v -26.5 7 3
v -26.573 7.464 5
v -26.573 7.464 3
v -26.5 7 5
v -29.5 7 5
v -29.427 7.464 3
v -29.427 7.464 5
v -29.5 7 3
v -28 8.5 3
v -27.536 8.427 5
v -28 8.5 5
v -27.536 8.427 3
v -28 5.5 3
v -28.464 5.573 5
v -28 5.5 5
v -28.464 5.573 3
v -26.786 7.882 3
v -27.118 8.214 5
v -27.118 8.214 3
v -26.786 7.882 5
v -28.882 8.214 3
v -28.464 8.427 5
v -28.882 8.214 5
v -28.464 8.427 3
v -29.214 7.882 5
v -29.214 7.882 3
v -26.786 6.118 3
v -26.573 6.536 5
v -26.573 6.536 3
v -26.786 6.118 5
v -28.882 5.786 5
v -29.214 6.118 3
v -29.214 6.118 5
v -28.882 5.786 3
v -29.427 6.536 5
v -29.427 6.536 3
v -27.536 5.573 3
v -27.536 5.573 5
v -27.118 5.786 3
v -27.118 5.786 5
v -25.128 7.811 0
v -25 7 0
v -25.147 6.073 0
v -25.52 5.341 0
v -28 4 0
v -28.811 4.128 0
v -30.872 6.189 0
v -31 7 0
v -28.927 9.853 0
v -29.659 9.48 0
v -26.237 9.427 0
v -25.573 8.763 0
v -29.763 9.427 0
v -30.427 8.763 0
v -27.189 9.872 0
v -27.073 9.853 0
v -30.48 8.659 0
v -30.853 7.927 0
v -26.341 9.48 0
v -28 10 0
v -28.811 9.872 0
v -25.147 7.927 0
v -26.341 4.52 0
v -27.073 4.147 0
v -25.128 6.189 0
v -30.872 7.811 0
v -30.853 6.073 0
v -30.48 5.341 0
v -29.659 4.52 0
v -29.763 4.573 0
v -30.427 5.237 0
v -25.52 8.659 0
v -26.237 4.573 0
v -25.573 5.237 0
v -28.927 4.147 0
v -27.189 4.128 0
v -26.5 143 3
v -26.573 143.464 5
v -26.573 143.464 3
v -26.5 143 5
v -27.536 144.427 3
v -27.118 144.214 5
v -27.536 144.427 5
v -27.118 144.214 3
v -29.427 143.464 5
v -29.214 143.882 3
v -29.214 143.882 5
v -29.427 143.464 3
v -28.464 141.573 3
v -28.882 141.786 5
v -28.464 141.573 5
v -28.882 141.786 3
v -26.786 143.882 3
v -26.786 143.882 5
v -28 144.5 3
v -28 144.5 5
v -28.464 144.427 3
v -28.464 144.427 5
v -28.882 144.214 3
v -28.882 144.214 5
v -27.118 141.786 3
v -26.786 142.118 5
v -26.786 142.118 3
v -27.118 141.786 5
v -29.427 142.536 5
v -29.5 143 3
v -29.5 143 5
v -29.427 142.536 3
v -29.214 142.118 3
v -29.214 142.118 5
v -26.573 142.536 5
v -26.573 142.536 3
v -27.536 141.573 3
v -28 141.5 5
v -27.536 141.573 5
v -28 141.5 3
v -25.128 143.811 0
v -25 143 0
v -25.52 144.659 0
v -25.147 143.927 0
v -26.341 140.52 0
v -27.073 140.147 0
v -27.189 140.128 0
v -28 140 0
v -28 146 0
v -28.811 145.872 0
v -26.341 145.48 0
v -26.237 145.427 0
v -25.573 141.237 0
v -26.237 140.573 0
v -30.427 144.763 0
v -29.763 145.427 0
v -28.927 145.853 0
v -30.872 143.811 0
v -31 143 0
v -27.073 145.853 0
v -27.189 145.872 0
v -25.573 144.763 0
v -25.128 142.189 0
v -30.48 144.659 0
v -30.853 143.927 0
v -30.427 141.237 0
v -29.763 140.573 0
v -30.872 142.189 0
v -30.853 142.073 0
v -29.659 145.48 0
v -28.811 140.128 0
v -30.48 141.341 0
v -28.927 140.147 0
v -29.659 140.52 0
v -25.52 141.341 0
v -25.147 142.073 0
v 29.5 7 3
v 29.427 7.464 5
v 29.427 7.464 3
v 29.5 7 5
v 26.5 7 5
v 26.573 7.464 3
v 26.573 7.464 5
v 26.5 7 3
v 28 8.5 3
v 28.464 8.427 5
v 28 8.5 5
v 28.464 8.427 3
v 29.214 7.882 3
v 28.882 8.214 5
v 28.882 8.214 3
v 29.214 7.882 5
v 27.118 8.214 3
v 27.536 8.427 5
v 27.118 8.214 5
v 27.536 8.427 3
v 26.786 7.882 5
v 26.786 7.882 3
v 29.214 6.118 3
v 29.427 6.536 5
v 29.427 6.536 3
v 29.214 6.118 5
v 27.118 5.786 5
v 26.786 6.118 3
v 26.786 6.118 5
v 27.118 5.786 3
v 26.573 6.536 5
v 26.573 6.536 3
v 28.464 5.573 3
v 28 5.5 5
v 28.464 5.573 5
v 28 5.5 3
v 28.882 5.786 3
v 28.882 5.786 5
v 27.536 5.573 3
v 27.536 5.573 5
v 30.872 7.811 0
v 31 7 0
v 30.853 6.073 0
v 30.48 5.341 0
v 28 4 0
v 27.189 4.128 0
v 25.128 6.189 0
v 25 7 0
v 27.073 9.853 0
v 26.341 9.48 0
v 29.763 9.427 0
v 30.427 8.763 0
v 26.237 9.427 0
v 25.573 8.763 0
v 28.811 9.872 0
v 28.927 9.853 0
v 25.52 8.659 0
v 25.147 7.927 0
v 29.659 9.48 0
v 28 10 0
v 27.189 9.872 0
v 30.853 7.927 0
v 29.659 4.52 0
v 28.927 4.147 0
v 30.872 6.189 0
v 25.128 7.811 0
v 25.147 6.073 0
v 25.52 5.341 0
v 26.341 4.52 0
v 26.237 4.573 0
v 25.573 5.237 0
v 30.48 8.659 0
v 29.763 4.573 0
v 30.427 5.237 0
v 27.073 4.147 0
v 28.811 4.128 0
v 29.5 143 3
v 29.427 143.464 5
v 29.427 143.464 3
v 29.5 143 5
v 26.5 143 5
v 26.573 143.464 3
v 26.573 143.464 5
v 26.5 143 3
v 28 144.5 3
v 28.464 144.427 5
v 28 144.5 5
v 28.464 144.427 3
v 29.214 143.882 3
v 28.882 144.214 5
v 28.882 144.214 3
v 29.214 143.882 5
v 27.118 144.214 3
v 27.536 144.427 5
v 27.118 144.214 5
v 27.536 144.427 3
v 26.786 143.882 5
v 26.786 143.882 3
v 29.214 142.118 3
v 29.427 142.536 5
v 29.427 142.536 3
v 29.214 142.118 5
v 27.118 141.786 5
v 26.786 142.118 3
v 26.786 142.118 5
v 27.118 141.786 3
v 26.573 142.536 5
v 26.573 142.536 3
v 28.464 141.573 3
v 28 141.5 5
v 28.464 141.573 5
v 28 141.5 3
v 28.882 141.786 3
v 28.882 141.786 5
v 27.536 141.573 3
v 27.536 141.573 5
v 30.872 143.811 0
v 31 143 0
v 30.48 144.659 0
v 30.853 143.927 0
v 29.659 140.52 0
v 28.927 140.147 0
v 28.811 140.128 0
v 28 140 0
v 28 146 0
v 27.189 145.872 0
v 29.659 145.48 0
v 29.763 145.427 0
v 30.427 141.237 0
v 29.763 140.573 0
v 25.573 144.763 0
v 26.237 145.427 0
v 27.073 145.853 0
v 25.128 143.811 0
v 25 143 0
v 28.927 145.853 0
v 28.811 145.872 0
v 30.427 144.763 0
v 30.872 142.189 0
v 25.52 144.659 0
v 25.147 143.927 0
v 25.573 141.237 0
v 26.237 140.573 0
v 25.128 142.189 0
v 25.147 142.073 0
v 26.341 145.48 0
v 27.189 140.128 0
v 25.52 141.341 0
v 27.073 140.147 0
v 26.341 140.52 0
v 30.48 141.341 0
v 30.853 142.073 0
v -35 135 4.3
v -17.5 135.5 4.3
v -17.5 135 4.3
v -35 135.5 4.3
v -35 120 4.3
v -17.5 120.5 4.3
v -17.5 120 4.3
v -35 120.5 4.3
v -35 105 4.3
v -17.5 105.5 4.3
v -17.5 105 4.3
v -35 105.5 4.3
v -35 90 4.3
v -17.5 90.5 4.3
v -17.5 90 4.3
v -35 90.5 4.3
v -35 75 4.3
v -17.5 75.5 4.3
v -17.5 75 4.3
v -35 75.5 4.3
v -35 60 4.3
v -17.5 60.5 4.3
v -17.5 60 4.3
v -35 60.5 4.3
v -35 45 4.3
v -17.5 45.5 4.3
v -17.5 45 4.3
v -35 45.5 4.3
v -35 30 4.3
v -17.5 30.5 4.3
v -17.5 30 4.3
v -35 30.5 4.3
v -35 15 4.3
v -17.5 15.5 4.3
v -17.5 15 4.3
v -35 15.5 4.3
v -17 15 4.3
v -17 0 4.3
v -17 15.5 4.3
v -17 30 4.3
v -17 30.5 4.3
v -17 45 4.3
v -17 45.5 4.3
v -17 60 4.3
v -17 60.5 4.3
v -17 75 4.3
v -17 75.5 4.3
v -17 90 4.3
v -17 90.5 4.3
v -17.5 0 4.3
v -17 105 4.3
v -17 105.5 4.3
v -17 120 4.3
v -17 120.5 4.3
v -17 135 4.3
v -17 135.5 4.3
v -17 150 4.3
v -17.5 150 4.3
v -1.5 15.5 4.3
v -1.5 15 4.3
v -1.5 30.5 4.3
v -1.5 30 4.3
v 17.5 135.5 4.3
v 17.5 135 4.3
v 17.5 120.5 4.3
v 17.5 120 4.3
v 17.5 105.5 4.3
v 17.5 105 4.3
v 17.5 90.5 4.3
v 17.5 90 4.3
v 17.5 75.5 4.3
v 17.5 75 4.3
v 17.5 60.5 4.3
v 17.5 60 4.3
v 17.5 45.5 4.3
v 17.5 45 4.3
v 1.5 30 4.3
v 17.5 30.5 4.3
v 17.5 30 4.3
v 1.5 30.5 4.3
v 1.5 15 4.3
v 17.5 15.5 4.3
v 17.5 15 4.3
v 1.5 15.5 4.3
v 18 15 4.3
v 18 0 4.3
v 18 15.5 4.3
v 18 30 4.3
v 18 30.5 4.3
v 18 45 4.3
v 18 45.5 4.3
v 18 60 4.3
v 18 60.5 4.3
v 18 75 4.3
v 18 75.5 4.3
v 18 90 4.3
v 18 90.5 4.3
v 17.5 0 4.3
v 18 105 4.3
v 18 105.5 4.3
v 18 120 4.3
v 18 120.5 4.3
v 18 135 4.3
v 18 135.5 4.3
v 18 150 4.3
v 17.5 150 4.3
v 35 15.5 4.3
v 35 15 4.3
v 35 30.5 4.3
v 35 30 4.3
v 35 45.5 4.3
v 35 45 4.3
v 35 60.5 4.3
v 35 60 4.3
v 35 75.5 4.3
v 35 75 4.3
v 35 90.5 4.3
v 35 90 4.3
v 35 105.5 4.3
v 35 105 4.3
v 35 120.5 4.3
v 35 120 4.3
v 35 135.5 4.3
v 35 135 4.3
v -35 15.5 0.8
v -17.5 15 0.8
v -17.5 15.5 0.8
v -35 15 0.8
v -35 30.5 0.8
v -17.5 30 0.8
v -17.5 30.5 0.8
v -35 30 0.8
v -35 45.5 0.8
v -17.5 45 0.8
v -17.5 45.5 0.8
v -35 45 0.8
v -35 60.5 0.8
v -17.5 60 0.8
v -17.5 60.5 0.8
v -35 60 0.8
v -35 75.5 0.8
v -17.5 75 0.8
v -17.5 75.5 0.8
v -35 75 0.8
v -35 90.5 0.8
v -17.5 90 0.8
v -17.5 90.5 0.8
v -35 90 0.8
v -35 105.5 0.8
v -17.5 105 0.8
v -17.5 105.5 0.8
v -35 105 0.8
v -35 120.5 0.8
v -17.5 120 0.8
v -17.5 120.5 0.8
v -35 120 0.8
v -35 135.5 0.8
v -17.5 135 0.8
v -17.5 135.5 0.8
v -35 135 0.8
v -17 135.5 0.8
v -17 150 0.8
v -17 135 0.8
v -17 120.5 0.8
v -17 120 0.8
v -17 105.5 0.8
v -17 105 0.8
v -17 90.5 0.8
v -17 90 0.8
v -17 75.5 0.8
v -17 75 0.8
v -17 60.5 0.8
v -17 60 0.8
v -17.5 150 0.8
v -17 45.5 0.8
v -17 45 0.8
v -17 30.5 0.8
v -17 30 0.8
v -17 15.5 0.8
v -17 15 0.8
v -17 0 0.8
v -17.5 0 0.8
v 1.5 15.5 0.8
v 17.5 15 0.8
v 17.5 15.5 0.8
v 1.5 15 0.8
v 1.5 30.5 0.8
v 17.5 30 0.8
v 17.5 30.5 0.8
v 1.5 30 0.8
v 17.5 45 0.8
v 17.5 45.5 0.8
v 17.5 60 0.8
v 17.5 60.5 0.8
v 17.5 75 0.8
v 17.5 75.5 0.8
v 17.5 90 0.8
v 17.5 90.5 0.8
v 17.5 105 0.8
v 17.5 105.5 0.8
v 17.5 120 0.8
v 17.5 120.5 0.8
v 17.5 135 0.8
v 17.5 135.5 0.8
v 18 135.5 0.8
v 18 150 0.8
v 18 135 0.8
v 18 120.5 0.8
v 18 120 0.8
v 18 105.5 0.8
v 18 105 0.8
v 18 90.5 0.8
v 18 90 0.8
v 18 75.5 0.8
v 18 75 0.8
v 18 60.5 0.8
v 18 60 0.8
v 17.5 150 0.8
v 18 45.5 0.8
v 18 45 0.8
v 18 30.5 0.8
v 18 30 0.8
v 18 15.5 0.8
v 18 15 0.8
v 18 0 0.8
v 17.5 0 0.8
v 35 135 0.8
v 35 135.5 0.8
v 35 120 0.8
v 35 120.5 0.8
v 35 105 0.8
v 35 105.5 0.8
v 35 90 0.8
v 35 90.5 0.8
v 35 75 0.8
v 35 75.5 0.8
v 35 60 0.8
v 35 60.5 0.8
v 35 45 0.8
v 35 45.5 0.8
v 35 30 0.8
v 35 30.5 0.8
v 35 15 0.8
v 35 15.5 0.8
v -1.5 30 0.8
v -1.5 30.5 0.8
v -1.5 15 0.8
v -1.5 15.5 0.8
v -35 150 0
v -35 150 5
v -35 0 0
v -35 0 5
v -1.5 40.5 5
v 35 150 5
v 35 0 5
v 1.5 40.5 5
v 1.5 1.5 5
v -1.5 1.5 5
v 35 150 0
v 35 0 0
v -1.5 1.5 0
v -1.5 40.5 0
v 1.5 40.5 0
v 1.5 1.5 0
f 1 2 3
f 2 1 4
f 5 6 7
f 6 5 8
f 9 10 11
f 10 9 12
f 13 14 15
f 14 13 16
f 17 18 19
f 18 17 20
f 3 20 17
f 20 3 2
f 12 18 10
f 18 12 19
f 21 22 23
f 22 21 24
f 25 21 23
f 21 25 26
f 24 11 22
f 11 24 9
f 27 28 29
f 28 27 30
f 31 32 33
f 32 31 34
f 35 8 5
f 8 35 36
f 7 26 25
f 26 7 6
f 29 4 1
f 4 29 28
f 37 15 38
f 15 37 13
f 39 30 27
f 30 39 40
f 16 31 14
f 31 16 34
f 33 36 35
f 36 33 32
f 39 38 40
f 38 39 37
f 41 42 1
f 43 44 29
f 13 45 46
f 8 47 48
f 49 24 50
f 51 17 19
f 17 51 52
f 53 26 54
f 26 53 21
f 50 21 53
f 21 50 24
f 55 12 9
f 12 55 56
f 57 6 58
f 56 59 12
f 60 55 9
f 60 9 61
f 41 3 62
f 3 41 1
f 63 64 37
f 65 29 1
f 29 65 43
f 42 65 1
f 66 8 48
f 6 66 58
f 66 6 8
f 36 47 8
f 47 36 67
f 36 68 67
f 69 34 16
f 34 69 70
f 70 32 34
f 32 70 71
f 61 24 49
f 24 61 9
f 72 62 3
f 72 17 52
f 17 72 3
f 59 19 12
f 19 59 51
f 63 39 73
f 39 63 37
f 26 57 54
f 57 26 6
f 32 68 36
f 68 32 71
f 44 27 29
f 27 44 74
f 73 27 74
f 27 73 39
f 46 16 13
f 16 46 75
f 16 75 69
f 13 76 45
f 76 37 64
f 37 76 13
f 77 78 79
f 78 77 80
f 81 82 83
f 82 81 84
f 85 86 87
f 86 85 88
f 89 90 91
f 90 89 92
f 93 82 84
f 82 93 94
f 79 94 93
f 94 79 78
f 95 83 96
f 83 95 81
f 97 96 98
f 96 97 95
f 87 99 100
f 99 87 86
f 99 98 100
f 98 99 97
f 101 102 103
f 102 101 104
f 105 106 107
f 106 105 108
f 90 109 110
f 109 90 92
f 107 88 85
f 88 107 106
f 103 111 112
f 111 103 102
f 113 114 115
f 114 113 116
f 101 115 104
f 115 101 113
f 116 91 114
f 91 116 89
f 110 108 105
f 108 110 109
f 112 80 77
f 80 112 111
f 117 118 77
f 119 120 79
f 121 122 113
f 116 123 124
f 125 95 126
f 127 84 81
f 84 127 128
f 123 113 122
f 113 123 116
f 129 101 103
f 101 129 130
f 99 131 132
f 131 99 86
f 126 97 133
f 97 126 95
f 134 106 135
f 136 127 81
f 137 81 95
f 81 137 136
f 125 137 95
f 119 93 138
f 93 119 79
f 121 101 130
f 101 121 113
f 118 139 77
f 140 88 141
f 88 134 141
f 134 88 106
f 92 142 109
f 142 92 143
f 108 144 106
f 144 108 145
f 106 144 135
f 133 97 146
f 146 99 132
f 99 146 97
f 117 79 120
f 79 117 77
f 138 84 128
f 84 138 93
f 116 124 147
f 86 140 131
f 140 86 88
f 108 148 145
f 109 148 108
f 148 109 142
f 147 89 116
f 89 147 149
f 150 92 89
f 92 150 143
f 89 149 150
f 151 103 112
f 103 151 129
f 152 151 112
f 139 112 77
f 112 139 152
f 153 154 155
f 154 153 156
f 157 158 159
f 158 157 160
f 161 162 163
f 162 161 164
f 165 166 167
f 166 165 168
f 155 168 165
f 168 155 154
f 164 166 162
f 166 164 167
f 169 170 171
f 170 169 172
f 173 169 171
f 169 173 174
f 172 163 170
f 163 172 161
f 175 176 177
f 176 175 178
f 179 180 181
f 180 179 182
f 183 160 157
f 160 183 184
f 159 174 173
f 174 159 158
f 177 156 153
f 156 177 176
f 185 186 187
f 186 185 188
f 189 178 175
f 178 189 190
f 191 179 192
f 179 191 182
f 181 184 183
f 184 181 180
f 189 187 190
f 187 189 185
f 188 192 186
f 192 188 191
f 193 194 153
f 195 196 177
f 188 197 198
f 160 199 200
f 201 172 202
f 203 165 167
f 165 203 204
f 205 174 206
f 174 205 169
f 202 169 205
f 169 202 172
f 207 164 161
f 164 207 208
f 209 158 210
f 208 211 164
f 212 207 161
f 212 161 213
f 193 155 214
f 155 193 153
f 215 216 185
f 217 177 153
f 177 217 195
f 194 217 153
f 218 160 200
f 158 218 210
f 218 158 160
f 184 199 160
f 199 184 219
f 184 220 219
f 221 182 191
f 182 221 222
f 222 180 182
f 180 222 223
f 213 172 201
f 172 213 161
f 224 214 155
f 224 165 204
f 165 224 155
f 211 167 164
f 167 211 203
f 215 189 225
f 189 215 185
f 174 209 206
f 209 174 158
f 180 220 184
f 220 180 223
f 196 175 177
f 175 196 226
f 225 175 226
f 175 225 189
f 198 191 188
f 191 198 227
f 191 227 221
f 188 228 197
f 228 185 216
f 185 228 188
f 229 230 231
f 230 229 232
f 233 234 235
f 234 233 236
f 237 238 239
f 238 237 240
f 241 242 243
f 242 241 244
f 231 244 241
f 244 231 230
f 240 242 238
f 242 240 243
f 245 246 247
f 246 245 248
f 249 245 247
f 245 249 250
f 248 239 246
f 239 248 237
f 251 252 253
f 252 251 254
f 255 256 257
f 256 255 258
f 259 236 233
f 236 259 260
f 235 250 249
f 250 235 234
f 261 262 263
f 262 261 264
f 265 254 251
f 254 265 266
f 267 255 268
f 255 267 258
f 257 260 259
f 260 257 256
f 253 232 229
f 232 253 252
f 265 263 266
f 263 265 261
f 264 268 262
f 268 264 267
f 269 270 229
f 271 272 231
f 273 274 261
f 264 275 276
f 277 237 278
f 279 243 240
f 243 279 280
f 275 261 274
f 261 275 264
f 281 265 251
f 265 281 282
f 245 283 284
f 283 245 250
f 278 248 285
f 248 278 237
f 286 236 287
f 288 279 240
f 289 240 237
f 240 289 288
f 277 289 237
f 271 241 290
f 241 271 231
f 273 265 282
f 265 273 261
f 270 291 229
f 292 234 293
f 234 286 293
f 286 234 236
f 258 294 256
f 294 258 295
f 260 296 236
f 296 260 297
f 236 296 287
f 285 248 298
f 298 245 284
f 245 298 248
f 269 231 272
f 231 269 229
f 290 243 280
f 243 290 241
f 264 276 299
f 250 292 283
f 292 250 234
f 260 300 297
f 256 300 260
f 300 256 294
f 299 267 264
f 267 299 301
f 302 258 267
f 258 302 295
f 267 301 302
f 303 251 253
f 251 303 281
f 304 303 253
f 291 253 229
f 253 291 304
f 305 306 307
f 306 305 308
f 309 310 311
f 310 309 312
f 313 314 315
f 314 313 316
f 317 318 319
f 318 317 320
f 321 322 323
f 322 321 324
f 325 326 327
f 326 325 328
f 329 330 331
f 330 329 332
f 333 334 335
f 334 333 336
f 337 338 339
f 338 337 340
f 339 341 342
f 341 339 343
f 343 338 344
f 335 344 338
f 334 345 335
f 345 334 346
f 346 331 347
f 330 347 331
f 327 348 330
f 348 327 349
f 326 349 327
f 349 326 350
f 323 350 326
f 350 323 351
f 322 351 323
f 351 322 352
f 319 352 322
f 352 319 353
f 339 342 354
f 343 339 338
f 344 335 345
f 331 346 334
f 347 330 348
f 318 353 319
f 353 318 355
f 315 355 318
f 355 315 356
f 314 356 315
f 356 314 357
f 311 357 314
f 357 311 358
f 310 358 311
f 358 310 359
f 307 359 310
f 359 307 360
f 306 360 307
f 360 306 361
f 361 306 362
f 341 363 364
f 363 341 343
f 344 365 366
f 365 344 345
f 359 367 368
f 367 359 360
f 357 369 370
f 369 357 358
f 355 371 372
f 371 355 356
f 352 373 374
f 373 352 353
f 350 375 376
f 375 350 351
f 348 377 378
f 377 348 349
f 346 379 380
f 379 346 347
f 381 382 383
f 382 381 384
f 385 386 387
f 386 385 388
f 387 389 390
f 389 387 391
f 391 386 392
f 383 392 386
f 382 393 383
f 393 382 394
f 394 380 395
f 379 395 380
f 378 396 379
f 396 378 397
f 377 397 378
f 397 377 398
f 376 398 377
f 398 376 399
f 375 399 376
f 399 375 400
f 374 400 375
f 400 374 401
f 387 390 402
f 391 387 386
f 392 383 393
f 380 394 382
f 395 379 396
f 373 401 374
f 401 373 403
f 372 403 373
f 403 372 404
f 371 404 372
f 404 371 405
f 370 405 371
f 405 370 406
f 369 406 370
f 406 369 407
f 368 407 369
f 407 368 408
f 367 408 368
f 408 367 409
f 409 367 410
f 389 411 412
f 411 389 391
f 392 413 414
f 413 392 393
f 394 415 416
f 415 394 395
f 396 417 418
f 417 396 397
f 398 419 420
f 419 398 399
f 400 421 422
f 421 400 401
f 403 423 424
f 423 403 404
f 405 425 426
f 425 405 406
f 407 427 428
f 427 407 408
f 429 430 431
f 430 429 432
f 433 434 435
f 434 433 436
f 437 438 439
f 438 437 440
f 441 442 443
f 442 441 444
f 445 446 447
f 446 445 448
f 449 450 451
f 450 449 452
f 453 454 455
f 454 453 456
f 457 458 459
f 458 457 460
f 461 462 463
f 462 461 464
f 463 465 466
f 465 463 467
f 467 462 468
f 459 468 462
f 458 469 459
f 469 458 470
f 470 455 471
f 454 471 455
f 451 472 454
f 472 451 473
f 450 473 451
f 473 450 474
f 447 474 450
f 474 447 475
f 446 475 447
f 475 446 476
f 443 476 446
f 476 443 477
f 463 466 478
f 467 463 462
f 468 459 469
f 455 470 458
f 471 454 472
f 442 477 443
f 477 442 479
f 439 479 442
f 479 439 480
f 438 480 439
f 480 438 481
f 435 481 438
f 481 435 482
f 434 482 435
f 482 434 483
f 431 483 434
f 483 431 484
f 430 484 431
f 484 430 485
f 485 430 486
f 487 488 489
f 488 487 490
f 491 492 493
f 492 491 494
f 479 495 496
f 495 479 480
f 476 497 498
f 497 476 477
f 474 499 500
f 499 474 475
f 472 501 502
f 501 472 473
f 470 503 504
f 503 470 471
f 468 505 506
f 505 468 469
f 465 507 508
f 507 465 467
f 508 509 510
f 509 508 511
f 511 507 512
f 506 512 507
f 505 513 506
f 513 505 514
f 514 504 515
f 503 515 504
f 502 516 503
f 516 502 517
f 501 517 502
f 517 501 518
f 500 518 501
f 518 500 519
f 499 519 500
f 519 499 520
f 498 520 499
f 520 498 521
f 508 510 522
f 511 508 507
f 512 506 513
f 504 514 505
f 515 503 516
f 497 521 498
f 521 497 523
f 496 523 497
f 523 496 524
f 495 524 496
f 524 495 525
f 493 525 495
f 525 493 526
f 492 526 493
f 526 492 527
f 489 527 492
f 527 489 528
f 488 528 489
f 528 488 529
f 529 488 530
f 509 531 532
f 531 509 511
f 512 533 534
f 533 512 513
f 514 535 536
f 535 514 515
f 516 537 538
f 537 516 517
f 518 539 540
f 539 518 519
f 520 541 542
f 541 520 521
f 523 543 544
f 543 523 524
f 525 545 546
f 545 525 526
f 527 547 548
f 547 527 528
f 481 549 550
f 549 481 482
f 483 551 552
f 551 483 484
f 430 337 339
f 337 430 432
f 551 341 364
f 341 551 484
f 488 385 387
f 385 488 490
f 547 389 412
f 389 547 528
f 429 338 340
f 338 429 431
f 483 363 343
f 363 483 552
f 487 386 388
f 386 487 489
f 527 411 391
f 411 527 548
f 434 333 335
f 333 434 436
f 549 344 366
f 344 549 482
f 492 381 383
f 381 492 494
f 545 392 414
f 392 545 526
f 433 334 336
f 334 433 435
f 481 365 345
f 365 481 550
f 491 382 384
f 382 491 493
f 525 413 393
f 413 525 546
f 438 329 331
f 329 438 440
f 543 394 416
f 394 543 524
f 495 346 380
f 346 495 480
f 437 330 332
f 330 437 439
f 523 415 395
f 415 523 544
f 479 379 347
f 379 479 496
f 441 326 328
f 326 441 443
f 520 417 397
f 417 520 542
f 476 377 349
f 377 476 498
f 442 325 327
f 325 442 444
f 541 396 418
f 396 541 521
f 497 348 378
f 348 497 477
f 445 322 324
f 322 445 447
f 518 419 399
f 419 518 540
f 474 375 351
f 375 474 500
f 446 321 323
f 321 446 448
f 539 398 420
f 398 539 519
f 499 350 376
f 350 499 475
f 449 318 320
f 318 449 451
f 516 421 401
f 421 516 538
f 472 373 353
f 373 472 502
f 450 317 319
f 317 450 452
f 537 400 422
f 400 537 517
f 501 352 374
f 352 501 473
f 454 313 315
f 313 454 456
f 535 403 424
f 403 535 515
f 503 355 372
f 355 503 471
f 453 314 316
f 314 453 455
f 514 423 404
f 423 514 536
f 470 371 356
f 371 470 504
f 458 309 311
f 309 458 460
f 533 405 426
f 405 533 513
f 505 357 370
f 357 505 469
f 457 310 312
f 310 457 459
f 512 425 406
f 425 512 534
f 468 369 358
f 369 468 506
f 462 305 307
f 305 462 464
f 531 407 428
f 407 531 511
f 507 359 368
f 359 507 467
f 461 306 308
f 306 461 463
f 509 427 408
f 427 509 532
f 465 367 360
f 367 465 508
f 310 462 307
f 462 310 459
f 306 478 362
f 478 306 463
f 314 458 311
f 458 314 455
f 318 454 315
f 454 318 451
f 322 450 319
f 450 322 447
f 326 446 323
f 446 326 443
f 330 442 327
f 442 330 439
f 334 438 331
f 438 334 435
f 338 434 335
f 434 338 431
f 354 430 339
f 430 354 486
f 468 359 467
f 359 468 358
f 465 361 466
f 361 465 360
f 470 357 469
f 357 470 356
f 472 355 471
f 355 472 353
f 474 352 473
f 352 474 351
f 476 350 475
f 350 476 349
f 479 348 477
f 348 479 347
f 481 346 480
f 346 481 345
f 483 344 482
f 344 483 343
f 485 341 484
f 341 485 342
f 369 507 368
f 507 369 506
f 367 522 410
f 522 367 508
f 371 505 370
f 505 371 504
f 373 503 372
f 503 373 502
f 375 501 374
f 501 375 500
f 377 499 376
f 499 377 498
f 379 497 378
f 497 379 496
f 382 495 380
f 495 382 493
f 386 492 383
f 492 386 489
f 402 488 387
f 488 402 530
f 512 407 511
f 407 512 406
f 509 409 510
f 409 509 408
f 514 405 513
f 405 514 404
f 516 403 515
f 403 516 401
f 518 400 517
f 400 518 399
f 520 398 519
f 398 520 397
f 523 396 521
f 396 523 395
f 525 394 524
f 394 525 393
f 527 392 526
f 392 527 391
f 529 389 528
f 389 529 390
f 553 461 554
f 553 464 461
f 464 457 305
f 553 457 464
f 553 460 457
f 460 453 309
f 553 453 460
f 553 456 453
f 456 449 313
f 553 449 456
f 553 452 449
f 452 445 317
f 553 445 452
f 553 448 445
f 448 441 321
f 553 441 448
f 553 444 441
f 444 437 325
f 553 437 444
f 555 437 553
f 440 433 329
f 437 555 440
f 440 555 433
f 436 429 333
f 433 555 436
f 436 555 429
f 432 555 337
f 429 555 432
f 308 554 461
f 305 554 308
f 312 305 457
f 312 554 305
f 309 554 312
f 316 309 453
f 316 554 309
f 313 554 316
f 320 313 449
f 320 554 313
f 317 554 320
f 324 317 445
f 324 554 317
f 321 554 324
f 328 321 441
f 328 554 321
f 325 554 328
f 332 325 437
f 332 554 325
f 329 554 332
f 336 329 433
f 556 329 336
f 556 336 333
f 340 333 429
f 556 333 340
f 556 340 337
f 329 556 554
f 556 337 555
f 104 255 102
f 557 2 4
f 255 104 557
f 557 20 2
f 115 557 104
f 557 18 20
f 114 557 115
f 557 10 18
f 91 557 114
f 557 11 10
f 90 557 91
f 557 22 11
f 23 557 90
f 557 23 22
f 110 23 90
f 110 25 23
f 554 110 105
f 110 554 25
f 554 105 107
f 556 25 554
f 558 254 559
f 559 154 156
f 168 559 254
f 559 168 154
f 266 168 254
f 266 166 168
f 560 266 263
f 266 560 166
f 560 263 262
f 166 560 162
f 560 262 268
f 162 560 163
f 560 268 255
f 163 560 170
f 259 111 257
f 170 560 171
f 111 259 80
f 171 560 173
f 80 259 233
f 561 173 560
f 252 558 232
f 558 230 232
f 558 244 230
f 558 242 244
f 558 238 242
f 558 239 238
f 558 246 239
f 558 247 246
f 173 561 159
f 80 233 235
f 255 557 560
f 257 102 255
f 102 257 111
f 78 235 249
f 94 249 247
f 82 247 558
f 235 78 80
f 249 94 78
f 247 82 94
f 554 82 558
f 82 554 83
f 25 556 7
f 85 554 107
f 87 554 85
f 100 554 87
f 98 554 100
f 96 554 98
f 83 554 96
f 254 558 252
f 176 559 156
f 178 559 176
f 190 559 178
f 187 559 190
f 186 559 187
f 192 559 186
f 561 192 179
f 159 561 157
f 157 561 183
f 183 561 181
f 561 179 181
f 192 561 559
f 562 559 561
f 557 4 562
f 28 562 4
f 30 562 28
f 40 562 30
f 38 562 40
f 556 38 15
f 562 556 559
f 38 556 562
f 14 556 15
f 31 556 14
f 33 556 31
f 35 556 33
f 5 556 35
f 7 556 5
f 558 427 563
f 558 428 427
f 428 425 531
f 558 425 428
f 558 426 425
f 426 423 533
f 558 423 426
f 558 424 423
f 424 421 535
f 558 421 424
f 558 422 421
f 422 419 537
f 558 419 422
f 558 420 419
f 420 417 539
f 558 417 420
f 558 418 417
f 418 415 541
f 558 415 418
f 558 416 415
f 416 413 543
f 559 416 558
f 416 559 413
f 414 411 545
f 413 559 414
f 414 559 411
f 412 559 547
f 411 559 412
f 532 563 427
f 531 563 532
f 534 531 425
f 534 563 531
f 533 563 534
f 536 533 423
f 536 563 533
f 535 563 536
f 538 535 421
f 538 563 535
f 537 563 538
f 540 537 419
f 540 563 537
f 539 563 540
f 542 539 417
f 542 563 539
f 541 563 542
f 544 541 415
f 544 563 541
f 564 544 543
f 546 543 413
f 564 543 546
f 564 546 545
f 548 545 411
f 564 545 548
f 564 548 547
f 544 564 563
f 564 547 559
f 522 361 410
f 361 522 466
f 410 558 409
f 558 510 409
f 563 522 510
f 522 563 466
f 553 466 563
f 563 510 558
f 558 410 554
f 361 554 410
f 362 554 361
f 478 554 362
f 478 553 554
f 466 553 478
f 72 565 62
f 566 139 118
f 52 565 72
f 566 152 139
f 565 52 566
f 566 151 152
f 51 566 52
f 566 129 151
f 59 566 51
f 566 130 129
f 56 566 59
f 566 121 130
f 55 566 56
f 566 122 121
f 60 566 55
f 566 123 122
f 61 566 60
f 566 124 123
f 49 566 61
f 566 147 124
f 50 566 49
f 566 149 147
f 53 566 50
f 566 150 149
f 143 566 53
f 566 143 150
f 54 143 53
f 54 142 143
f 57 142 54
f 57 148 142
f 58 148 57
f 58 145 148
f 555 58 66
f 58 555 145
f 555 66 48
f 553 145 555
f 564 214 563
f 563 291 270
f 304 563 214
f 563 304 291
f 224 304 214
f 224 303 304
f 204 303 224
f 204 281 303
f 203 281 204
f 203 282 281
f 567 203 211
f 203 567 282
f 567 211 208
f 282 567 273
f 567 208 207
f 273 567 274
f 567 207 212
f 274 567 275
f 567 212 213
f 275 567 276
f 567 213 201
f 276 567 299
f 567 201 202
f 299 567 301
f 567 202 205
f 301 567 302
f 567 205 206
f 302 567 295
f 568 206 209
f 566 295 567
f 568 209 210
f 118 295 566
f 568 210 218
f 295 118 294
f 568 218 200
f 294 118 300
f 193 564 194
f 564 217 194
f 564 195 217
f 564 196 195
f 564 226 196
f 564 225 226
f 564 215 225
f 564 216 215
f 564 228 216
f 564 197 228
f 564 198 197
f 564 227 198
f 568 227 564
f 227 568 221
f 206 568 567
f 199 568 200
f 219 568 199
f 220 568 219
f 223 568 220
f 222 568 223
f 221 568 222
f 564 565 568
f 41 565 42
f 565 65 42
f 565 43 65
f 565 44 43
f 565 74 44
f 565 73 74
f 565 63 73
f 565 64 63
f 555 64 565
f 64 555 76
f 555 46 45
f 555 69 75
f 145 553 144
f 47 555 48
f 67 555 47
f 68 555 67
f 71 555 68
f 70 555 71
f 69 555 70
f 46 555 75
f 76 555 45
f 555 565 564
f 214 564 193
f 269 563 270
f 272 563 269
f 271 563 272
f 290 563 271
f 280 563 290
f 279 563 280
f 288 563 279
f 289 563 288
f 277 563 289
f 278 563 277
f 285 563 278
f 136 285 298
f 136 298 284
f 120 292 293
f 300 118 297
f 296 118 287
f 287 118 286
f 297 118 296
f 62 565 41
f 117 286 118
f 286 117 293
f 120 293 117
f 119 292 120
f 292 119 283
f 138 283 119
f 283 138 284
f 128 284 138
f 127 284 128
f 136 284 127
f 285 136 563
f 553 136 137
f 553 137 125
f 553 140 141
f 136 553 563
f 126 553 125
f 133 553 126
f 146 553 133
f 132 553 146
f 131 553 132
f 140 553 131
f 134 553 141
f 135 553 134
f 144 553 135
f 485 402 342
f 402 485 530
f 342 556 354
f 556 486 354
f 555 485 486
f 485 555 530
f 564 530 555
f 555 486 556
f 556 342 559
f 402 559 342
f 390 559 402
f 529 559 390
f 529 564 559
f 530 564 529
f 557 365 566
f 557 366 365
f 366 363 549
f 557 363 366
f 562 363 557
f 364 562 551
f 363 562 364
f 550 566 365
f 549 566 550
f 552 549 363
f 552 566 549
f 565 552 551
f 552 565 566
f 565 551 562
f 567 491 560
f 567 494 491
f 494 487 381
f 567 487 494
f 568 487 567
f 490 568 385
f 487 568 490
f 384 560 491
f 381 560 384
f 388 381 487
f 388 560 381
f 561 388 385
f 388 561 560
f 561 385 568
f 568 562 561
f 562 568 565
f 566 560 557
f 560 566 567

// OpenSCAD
/**
 * plantillaPlana.scad
 * 
 * Created by Diego Viejo
 * 21/Dec/2015
 * 
 */

ancho = 70;
largo = 150;
alto = 5;

anchoSlot = 3; 
largoSlot = 40;

difference()
{
    translate([-ancho/2, 0, 0]) cube([ancho, largo, alto]);
    
    translate([-(anchoSlot)/2, 1.5, -1]) cube([anchoSlot, largoSlot-1, alto+2]);
    
    for(i=[-1,1]) for(j=[0,1])
    {
        translate([i*(ancho-14)/2, 7+j*(largo-14), -1]) 
        {
            cylinder(d=3, h=alto+2, $fn=20);
            cylinder(d1=7, d2=3, h=1+3, $fn=20);
        }
    }
    
    //tension breakers
    #for(i=[1:10-1])
        translate([-ancho/2-1, i*(largo/10), 0.8])
            cube([ancho+2, 0.5, alto-0.8-0.7]);
    for(i=[-1,1])
        translate([i*ancho/4, -1, 0.8])
            cube([0.5, largo+2, alto-0.8-0.7]);
}
